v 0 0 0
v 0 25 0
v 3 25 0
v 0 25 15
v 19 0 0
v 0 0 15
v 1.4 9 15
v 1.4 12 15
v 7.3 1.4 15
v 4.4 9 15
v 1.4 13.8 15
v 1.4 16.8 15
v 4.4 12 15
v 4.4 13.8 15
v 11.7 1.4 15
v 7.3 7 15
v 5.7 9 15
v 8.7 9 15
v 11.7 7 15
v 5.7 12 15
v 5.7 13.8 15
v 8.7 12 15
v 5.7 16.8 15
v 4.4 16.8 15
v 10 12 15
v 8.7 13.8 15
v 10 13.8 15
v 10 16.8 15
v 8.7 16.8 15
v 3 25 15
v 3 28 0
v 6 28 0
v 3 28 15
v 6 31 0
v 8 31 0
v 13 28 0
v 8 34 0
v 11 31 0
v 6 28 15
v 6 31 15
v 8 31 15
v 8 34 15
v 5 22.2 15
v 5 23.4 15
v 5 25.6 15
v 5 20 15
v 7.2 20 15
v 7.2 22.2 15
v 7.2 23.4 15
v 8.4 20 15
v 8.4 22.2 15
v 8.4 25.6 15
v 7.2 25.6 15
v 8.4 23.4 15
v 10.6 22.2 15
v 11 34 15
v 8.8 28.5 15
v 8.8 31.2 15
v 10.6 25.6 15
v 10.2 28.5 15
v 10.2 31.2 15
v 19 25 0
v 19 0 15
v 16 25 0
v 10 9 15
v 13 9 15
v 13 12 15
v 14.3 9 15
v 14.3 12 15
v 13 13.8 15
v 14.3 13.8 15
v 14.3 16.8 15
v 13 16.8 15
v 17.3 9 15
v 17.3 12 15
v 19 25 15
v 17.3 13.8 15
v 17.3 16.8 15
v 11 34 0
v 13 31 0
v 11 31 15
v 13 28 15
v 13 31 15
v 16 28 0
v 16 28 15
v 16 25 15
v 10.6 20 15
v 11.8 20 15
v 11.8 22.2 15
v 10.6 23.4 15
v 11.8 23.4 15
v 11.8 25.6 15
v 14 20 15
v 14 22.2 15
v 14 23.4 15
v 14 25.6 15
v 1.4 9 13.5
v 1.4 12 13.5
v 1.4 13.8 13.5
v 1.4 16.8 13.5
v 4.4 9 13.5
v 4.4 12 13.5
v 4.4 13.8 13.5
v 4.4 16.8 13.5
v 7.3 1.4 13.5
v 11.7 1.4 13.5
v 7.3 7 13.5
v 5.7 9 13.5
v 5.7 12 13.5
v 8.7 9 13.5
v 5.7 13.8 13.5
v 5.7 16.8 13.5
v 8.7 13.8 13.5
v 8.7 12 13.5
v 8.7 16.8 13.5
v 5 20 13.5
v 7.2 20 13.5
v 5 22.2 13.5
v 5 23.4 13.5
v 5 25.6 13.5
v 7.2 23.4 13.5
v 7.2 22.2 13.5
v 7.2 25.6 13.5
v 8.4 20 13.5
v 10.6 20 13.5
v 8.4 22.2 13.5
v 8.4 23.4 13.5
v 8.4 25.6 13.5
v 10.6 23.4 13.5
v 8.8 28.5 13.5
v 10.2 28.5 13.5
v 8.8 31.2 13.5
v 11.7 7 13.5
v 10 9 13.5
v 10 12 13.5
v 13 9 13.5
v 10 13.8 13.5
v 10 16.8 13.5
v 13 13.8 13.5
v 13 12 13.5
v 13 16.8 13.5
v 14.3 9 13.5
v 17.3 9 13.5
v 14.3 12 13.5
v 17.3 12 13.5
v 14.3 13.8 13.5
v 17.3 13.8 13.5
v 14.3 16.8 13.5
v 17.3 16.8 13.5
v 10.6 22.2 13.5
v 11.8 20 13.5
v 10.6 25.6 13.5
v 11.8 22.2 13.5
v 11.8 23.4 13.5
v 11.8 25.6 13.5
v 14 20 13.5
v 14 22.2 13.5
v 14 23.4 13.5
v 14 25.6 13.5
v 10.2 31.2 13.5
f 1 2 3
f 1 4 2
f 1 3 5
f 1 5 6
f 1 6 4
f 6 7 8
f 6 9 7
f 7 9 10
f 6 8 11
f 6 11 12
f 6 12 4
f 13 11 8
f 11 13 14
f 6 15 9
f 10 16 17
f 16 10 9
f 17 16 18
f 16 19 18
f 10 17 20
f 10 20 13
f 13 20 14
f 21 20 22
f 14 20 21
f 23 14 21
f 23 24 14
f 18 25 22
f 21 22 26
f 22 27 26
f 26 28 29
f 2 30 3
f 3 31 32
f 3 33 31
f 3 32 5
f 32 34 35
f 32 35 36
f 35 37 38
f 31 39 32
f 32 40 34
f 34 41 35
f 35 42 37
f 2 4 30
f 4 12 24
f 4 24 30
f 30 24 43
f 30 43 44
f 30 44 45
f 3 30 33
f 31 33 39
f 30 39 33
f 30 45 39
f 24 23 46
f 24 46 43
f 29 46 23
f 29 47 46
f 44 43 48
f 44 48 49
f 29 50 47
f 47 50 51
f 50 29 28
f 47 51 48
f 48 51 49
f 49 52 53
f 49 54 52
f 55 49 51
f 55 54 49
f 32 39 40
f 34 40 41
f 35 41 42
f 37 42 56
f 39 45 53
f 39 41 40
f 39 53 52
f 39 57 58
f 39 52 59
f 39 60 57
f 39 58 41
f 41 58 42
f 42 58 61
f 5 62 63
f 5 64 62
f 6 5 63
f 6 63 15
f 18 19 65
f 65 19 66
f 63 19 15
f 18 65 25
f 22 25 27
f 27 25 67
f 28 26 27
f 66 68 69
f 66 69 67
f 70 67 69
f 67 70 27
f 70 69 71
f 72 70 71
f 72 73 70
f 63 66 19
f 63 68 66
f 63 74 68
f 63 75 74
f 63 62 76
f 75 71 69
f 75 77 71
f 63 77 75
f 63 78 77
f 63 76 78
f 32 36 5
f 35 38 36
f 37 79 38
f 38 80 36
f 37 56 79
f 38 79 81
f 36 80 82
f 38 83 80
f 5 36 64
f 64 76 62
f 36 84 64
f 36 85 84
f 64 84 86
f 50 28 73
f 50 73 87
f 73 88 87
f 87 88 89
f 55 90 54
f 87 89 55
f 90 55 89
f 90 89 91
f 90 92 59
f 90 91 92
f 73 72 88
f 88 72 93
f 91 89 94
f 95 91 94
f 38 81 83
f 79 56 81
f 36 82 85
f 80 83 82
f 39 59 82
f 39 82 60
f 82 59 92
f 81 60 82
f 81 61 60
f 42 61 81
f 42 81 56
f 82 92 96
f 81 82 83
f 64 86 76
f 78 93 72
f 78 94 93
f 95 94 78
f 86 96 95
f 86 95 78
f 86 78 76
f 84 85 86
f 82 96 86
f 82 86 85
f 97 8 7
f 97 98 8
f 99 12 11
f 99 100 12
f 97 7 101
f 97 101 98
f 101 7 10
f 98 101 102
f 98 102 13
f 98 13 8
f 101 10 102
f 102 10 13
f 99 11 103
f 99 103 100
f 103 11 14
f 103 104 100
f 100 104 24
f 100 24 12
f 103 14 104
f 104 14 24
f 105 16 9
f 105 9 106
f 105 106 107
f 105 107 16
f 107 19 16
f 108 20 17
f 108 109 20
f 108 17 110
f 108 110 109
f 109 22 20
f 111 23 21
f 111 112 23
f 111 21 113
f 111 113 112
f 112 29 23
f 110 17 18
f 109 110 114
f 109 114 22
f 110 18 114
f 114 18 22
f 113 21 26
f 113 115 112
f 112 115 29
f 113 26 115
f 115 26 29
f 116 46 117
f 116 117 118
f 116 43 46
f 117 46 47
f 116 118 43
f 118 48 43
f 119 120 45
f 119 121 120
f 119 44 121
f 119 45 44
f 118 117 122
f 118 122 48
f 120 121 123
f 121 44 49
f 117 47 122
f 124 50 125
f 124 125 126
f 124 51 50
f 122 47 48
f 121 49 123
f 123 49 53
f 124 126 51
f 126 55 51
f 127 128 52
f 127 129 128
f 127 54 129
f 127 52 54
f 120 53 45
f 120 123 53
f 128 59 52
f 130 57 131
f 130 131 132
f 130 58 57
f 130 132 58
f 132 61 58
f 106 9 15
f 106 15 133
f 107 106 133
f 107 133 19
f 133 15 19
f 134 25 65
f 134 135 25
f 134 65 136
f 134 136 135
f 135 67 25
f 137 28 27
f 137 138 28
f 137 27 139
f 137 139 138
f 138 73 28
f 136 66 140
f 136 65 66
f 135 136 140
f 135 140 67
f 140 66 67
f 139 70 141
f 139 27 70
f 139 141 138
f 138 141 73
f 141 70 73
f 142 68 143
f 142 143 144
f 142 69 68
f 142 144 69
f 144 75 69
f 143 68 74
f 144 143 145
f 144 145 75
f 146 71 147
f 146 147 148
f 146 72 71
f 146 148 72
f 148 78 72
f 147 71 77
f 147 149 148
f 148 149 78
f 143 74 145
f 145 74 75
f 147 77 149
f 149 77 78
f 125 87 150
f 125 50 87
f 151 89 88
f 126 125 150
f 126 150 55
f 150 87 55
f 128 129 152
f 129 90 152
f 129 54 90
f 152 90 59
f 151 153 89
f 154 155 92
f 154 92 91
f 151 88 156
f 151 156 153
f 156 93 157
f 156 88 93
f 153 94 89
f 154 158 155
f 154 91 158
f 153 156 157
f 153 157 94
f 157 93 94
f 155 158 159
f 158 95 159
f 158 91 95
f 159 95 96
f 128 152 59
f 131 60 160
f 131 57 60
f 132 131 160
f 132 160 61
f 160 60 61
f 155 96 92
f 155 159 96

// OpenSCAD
// Building miniatures — Tech, AI & Digital
// Units: millimetres. X = width; Y = facade height; Z = depth.
// Print flat on the back at Z=0. Front Z=15; recesses are 1.5 mm deep.
$fn=96;
depth=15;
recess=1.5;
module rect(x,y,w,h) { translate([x,y]) square([w,h]); }
module disc(x,y,r) { translate([x,y]) circle(r=r); }
module rr(x,y,w,h,r=1) { hull() for(a=[x+r,x+w-r],b=[y+r,y+h-r]) disc(a,b,r); }
module stroke(a,b,w=1.4) { hull() {disc(a[0],a[1],w/2);disc(b[0],b[1],w/2);} }
module ring(x,y,r,w=1.4) { difference(){disc(x,y,r);disc(x,y,r-w);} }
module framed(x,y,w,h,t=1.4) { difference(){rect(x,y,w,h);rect(x+t,y+t,w-2*t,h-2*t);} }
module arrow(a,b,w=1.5) { v=b-a; u=v/norm(v); n=[-u[1],u[0]]; tip=b; neck=b-u*2.8; stroke(a,neck,w); polygon([tip,neck+n*1.9,neck-n*1.9]); }
module building(){difference(){linear_extrude(height=depth) silhouette();translate([0,0,depth-recess]) linear_extrude(height=recess+0.2) details();}}
building();

module silhouette(){polygon([[0,0],[19,0],[19,25],[16,25],[16,28],[13,28],[13,31],[11,31],[11,34],[8,34],[8,31],[6,31],[6,28],[3,28],[3,25],[0,25]]);}
module details(){
 rect(7.3,1.4,4.4,5.6);
 for(x=[1.4,5.7,10.0,14.3],y=[9,13.8]) rect(x,y,3.0,3.0);
 for(x=[5.0,8.4,11.8],y=[20.0,23.4]) rect(x,y,2.2,2.2);
 rect(8.8,28.5,1.4,2.7);
}
